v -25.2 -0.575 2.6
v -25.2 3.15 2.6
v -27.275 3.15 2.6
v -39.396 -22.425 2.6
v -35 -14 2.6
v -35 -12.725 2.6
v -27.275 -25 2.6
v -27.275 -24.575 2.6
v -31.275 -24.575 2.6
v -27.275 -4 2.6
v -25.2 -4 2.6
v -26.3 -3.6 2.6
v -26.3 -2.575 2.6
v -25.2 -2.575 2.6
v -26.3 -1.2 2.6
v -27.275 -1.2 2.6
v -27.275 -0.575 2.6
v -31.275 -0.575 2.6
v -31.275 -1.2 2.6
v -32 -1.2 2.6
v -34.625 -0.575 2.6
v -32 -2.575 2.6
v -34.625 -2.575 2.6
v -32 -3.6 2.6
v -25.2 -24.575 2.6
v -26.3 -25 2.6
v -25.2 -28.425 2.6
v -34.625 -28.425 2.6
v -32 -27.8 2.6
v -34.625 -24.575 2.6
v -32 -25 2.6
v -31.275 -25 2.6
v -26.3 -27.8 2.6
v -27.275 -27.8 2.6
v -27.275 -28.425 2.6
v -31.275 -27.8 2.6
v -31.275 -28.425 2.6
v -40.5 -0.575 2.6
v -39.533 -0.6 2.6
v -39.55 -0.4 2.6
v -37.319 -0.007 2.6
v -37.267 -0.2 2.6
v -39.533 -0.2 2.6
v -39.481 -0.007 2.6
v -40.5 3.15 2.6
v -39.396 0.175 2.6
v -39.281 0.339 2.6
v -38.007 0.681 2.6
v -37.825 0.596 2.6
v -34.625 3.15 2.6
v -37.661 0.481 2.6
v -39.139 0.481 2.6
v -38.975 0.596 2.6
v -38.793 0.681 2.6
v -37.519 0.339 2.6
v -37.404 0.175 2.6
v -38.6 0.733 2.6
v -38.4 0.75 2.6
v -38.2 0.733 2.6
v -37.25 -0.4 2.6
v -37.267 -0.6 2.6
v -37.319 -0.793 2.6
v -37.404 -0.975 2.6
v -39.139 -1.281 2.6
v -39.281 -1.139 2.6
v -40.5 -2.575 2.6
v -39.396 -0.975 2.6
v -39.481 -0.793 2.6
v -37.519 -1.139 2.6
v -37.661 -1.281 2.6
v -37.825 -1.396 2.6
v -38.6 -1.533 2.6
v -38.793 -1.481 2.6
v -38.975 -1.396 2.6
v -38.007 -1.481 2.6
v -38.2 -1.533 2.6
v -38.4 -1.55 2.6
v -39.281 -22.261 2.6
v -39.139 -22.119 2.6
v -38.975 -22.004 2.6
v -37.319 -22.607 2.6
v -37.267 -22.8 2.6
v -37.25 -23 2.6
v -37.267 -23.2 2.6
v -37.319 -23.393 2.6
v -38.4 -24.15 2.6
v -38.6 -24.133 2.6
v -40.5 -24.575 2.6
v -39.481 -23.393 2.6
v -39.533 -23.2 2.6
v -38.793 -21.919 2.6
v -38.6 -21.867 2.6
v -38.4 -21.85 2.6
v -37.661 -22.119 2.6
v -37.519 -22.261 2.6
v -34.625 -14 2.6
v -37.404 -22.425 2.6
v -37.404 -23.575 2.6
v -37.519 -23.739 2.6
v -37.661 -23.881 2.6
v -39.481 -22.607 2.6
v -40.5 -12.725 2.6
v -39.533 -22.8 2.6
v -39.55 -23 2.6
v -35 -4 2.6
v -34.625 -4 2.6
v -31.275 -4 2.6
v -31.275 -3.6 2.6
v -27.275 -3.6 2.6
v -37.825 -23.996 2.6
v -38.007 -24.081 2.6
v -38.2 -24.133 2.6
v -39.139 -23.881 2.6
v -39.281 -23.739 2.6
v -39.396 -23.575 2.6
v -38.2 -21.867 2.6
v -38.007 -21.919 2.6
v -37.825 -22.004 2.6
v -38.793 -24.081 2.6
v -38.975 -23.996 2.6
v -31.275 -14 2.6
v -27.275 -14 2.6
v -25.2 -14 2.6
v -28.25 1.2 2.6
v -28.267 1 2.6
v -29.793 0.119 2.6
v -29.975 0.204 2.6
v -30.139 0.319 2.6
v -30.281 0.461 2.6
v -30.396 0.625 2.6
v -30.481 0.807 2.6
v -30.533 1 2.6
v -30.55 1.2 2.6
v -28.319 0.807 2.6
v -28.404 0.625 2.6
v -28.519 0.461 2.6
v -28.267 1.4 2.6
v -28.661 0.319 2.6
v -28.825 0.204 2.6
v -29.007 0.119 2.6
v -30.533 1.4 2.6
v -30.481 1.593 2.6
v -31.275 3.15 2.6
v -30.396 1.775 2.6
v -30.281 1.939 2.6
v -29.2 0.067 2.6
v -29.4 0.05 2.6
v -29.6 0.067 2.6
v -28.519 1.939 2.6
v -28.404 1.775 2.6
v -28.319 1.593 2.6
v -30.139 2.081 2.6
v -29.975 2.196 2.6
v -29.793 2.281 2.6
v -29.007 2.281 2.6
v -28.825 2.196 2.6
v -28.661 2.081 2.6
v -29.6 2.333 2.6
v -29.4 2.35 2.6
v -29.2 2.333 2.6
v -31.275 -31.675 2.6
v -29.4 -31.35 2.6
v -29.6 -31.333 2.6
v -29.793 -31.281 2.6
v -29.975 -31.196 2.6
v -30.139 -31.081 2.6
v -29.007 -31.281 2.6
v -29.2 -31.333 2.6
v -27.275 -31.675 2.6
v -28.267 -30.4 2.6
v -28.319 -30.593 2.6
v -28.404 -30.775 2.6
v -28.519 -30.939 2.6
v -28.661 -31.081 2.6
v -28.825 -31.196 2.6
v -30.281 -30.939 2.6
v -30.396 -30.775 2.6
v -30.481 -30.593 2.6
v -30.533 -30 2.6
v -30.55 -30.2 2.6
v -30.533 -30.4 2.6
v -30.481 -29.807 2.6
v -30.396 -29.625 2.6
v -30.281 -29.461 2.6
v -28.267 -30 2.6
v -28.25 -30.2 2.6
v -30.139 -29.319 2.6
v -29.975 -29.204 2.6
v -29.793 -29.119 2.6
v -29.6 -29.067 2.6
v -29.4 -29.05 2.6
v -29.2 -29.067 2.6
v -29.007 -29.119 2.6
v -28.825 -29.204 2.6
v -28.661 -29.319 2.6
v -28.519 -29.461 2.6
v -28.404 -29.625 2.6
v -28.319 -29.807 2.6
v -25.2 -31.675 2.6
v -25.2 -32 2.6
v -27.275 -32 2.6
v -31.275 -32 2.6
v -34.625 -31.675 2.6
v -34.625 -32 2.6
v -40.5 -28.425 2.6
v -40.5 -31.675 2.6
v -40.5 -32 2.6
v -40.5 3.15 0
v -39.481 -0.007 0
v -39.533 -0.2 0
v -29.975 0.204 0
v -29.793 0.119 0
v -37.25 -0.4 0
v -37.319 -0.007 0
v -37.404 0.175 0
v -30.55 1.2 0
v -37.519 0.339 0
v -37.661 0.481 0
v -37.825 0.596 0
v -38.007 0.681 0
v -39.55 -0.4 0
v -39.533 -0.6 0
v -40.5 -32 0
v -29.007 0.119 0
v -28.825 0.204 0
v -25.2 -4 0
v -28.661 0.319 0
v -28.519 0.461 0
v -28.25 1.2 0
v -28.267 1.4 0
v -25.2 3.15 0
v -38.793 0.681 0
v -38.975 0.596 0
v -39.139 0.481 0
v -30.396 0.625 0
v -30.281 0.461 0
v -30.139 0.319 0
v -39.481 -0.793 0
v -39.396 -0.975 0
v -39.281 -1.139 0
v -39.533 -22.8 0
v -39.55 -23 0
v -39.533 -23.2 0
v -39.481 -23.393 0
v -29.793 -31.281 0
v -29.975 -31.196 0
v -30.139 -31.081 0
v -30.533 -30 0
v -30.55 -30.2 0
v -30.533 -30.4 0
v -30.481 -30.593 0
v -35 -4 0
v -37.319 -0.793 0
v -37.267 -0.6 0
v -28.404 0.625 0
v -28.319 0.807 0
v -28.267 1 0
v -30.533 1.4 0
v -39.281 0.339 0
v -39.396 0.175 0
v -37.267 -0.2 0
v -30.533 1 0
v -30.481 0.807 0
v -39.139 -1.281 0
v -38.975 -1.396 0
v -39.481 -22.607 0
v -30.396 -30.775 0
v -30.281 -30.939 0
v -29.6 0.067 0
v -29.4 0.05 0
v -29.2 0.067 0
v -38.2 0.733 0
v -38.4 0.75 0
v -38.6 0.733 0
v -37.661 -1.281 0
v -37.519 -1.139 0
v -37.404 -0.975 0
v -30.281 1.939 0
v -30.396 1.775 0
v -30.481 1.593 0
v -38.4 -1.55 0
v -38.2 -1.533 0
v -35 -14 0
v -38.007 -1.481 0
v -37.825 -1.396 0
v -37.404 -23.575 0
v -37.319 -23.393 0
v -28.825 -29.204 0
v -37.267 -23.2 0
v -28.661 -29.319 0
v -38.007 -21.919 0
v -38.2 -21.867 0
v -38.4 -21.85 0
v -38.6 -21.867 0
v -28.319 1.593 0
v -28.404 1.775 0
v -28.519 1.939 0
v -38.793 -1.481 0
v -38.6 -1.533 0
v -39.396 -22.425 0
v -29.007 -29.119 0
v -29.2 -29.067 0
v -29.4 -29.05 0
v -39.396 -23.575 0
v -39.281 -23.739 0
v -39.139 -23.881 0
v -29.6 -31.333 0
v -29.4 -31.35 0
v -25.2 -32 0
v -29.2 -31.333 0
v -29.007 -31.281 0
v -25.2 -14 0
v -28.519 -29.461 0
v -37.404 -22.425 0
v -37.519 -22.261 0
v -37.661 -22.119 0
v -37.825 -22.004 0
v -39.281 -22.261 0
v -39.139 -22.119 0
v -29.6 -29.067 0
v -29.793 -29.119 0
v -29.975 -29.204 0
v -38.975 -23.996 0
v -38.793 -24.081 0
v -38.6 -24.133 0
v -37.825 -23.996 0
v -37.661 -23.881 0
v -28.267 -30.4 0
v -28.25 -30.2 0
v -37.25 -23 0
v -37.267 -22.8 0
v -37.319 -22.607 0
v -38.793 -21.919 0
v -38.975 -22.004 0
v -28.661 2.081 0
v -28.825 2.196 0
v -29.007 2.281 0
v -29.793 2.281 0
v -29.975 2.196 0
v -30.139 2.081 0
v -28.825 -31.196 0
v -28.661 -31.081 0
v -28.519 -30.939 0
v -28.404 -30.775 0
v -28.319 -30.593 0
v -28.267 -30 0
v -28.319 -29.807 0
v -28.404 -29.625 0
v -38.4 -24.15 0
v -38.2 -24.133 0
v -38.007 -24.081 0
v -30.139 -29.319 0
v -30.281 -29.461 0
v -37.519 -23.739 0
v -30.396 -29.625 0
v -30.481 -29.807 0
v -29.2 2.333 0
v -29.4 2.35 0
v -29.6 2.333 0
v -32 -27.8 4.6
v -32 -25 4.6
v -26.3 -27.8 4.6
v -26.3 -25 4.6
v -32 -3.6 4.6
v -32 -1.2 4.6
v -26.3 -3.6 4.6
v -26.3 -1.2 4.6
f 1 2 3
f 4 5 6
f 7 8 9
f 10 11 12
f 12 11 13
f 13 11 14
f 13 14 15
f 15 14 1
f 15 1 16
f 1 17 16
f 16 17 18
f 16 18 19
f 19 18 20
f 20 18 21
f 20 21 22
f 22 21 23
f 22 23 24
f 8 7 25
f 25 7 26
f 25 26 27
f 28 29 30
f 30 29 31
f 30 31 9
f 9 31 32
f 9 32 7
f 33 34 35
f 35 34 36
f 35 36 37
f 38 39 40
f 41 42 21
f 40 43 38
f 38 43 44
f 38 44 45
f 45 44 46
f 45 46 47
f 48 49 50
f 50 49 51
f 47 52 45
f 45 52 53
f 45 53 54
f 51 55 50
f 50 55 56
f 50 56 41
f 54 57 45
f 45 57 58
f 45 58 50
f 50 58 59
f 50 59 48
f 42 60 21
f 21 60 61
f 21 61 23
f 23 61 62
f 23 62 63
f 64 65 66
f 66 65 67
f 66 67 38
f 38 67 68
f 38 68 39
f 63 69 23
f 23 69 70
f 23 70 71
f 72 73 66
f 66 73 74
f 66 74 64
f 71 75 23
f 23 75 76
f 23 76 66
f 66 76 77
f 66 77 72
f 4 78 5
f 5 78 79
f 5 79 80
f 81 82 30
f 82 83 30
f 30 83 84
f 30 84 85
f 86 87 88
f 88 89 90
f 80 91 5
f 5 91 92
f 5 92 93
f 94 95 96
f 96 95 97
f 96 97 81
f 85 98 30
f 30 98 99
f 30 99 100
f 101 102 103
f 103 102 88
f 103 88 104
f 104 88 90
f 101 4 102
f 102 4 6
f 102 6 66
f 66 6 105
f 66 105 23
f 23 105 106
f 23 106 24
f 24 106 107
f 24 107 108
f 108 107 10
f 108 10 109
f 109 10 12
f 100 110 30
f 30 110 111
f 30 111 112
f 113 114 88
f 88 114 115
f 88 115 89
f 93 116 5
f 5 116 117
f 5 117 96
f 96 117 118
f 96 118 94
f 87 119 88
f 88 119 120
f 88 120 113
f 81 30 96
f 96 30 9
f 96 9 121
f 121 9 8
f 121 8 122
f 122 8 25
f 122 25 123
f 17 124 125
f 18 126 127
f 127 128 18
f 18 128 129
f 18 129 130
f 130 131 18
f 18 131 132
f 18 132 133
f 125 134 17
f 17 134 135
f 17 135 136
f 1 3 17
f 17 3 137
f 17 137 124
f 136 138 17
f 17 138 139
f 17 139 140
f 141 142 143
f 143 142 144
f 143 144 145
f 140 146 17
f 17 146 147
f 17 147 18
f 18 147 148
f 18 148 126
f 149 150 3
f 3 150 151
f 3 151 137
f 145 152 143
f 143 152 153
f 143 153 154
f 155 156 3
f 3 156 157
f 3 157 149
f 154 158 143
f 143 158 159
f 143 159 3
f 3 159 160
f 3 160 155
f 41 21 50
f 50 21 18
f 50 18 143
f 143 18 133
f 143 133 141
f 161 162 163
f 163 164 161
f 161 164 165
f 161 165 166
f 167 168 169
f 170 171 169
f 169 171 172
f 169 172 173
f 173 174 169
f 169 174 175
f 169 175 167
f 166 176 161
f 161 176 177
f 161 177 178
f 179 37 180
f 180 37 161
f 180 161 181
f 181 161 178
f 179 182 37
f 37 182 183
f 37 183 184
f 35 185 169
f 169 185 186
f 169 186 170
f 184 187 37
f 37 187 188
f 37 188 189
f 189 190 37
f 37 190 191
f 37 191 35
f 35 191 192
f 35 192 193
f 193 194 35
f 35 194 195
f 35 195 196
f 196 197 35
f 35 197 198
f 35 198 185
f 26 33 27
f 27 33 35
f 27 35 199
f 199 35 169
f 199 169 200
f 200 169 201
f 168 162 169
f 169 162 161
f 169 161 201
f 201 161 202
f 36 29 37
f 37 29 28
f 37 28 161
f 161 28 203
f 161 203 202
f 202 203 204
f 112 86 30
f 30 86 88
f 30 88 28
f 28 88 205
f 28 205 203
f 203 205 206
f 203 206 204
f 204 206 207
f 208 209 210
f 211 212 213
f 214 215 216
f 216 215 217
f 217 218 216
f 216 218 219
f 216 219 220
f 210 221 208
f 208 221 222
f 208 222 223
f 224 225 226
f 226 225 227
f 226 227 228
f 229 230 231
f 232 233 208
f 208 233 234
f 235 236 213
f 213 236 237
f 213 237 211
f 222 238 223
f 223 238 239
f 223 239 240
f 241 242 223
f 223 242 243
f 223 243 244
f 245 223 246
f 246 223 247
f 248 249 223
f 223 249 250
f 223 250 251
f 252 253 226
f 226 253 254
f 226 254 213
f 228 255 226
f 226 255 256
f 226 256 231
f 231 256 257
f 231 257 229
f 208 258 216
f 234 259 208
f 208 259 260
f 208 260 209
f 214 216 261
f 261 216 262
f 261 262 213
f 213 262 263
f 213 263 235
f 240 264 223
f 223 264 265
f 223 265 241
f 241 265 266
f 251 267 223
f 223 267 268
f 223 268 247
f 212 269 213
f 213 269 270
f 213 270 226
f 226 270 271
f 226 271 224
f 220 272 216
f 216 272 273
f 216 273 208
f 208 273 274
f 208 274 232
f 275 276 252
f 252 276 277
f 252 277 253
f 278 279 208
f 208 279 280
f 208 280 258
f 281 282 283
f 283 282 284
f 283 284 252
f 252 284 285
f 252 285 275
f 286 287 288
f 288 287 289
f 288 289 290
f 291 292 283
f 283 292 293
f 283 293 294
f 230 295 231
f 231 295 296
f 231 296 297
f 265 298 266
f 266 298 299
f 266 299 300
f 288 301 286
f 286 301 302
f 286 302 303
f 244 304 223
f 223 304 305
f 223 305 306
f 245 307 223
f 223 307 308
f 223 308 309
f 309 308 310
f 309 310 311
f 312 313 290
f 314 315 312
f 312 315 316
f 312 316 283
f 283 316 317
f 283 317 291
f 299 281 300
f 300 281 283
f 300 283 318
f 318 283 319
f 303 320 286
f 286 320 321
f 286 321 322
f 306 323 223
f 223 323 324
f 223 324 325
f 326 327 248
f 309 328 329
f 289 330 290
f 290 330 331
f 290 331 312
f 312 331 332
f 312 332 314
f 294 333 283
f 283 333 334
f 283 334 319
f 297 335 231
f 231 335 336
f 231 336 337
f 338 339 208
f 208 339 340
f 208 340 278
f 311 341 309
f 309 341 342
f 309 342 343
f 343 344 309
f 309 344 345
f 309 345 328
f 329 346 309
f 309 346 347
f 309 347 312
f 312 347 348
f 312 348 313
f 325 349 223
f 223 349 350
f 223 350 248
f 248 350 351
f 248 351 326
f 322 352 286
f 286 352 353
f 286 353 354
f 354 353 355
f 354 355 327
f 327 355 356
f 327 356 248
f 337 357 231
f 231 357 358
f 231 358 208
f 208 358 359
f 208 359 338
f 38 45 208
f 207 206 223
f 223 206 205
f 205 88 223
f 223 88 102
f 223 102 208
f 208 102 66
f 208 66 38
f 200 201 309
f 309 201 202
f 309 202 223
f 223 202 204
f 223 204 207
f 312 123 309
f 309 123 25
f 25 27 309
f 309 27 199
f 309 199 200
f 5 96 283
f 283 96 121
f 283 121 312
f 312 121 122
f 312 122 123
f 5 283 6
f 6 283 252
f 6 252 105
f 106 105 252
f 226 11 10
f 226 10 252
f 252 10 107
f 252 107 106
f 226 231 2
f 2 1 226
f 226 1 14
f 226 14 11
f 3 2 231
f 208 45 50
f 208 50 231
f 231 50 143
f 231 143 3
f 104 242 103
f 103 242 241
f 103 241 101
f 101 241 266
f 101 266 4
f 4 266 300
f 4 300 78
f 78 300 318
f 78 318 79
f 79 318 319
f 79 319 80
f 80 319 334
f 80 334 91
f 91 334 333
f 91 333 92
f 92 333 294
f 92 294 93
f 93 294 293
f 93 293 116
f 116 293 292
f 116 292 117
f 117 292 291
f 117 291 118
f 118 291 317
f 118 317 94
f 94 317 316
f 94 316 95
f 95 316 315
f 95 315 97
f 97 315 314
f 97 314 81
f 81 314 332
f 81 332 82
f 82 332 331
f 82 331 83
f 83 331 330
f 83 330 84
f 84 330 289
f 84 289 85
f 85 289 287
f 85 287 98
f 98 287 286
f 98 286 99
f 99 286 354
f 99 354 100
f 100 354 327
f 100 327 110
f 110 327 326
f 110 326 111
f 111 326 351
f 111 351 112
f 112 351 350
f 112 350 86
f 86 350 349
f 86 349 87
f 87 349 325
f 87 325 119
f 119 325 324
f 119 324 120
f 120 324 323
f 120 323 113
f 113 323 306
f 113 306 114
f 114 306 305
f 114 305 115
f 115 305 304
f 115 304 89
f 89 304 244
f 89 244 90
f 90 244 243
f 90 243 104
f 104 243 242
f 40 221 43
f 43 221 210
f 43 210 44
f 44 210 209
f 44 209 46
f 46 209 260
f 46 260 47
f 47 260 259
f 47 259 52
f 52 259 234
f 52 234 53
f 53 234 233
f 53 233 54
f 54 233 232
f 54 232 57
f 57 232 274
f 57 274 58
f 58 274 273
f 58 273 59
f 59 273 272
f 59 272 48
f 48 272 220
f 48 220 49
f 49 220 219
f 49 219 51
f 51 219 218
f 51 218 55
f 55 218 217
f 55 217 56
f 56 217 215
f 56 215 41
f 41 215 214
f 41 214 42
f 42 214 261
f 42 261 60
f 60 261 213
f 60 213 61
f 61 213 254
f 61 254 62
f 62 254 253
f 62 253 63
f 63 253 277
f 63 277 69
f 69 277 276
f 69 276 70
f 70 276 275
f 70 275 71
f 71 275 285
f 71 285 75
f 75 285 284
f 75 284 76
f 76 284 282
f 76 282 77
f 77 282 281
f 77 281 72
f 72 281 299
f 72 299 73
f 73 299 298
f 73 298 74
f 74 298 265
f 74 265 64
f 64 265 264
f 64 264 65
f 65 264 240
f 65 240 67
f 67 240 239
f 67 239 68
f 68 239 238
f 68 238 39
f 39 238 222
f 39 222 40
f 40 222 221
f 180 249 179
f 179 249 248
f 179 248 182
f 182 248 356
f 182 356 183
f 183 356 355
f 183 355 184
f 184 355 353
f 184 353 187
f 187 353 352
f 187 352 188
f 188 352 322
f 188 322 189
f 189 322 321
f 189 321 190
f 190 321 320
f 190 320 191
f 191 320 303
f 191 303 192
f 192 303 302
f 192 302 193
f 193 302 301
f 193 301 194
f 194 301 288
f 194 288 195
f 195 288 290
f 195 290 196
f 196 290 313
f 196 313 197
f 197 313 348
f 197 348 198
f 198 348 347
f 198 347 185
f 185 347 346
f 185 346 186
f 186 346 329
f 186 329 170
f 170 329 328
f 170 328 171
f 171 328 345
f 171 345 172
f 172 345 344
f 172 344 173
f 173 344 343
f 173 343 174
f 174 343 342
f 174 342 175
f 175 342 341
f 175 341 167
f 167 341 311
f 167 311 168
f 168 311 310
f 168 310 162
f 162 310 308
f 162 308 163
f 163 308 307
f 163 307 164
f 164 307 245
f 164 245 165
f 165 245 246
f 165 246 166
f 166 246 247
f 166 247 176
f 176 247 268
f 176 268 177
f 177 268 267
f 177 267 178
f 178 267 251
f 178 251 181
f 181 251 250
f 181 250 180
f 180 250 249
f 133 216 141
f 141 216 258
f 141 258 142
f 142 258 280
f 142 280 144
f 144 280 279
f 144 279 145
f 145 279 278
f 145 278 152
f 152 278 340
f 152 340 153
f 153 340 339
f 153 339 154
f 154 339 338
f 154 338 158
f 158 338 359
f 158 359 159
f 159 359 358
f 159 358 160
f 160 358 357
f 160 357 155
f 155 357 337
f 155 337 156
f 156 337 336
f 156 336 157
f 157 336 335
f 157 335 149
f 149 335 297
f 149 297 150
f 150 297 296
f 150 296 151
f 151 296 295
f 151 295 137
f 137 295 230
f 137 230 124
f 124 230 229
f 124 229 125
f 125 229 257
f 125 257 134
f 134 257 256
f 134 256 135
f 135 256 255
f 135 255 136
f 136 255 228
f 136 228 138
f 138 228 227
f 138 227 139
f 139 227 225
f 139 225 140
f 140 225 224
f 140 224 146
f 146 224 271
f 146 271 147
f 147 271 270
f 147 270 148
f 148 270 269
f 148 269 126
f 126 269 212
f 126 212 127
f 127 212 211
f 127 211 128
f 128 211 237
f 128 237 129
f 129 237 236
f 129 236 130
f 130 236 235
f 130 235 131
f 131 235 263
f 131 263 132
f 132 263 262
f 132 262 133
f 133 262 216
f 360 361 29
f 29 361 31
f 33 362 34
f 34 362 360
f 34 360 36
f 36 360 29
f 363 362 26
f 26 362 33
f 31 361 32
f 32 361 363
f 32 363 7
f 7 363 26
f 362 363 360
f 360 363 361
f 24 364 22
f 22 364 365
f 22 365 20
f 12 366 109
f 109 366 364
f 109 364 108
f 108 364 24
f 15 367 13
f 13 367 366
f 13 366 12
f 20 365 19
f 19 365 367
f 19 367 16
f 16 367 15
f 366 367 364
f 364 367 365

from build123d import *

# Parameters (mm, degrees)
TYPE_C_PROFILE_R  = 1.15
TYPE_C_DEPTH      = 2.6
EXTRUDE_START     = 2.6
PROFILE_W         = 5.7
PROFILE_H         = 2.8
PROFILE_H_2       = 2.4
EXTRUDE_309_DEPTH = 2


with BuildPart() as part:
    # 接口端底座，Type-C区开口 profile → 接口端底座，Type-C区开口 (new body)
    with BuildSketch(Plane.XY):
        Polygon((-40.5, -32), (-25.2, -32), (-25.2, -14), (-35, -14), (-35, -4), (-25.2, -4), (-25.2, 3.15), (-40.5, 3.15), align=None)
        with Locations((-38.4, -23)):
            Circle(TYPE_C_PROFILE_R, mode=Mode.SUBTRACT)
        with Locations((-38.4, -0.4)):
            Circle(TYPE_C_PROFILE_R, mode=Mode.SUBTRACT)
        with Locations((-29.4, -30.2)):
            Circle(TYPE_C_PROFILE_R, mode=Mode.SUBTRACT)
        with Locations((-29.4, 1.2)):
            Circle(TYPE_C_PROFILE_R, mode=Mode.SUBTRACT)
    extrude(amount=TYPE_C_DEPTH)

    # profile → Extrude 309 (add)
    with BuildSketch(Plane.XY.offset(EXTRUDE_START)):
        with Locations((-29.15, -26.4)):
            Rectangle(PROFILE_W, PROFILE_H)
        with Locations((-29.15, -2.4)):
            Rectangle(PROFILE_W, PROFILE_H_2)
    extrude(amount=EXTRUDE_309_DEPTH)


solid = part.part
